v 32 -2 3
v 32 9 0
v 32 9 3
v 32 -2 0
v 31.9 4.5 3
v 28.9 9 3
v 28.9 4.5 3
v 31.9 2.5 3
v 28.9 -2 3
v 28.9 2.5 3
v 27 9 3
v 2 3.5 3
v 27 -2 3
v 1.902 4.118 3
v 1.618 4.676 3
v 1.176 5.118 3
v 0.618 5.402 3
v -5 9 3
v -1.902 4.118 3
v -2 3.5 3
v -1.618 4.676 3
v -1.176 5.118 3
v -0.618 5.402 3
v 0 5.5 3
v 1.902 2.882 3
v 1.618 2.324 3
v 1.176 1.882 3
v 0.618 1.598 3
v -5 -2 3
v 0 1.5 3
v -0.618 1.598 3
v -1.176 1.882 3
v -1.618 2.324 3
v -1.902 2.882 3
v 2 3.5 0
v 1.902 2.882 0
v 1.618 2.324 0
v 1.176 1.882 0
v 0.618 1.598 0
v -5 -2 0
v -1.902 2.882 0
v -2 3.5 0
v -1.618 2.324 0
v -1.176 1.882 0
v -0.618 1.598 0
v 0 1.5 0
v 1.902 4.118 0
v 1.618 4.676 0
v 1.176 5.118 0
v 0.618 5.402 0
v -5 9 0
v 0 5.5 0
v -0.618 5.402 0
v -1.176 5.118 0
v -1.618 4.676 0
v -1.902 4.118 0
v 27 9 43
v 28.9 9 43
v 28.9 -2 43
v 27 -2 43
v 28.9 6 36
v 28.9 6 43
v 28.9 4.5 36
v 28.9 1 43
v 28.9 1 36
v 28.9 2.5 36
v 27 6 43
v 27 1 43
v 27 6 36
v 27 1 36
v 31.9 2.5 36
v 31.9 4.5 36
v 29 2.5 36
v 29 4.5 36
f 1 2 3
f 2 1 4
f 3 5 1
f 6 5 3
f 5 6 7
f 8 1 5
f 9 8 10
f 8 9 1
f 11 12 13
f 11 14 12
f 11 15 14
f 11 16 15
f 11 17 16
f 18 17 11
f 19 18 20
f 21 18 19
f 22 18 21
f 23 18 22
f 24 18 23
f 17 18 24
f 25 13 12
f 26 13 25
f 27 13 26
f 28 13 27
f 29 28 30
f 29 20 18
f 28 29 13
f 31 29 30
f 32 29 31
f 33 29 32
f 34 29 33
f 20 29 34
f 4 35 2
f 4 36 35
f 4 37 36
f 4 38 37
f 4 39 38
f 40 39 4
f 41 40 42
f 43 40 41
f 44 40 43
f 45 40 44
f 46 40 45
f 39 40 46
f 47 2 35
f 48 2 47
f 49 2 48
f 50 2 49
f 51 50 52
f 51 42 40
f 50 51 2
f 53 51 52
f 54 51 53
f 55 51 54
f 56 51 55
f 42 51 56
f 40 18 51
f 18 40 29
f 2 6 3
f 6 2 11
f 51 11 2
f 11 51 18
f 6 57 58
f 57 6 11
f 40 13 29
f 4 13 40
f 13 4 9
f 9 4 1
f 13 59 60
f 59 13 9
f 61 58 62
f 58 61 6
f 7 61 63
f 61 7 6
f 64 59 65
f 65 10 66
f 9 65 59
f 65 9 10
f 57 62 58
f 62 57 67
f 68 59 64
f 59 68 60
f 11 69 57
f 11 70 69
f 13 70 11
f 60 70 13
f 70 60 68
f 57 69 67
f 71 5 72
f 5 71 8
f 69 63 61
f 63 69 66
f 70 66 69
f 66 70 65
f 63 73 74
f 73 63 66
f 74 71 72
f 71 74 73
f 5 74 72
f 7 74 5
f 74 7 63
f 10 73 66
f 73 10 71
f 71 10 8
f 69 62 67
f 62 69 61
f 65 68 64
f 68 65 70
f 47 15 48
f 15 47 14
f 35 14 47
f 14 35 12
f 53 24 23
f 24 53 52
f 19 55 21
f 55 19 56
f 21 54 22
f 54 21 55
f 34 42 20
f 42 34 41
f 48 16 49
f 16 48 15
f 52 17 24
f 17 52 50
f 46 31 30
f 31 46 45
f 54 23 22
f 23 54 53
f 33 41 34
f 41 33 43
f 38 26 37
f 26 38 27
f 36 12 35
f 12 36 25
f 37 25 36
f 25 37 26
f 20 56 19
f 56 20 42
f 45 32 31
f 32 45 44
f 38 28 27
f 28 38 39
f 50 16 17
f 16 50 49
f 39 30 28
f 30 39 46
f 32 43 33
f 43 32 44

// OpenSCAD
// Support Antenne Frisko 4 ou 2 éléments pivotant long
// du 16/7/2017
lardip=53.5;    //largeur dipole
disref=20;		//distance reflecteur
larref=58;		//largeur reflecteur
epdip=4;       //écart brins dipole
fil=0.9;			// diametre du fil
supp=fil+(2*1);//épaisseur supports

render(convexity = 10) {




difference() {

// Partie pleine
union() {


//Support horizontal
translate([-5,-2,0]){
cube(size = [37,11,3], center = false);
}
//Support vertical
translate([27,-2,3]){
cube(size = [1.9,11,40], center = false);
}
//Renfort Support vertical
translate([28.9,2.5,3]){
cube(size = [3,2,33], center = false);
}


}

// Partie Creuse

union() {

//Perforations

//Creux Support vertical
translate([27,1,36]){
cube(size = [2,5,7], center = false);
}
//Trou Support horizontal
translate([0,3.5,0]){
//cube(size = [2,5,7], center = false);
cylinder(h = 3, d = 4, $fn=20, center = false);
}



}

}
}
